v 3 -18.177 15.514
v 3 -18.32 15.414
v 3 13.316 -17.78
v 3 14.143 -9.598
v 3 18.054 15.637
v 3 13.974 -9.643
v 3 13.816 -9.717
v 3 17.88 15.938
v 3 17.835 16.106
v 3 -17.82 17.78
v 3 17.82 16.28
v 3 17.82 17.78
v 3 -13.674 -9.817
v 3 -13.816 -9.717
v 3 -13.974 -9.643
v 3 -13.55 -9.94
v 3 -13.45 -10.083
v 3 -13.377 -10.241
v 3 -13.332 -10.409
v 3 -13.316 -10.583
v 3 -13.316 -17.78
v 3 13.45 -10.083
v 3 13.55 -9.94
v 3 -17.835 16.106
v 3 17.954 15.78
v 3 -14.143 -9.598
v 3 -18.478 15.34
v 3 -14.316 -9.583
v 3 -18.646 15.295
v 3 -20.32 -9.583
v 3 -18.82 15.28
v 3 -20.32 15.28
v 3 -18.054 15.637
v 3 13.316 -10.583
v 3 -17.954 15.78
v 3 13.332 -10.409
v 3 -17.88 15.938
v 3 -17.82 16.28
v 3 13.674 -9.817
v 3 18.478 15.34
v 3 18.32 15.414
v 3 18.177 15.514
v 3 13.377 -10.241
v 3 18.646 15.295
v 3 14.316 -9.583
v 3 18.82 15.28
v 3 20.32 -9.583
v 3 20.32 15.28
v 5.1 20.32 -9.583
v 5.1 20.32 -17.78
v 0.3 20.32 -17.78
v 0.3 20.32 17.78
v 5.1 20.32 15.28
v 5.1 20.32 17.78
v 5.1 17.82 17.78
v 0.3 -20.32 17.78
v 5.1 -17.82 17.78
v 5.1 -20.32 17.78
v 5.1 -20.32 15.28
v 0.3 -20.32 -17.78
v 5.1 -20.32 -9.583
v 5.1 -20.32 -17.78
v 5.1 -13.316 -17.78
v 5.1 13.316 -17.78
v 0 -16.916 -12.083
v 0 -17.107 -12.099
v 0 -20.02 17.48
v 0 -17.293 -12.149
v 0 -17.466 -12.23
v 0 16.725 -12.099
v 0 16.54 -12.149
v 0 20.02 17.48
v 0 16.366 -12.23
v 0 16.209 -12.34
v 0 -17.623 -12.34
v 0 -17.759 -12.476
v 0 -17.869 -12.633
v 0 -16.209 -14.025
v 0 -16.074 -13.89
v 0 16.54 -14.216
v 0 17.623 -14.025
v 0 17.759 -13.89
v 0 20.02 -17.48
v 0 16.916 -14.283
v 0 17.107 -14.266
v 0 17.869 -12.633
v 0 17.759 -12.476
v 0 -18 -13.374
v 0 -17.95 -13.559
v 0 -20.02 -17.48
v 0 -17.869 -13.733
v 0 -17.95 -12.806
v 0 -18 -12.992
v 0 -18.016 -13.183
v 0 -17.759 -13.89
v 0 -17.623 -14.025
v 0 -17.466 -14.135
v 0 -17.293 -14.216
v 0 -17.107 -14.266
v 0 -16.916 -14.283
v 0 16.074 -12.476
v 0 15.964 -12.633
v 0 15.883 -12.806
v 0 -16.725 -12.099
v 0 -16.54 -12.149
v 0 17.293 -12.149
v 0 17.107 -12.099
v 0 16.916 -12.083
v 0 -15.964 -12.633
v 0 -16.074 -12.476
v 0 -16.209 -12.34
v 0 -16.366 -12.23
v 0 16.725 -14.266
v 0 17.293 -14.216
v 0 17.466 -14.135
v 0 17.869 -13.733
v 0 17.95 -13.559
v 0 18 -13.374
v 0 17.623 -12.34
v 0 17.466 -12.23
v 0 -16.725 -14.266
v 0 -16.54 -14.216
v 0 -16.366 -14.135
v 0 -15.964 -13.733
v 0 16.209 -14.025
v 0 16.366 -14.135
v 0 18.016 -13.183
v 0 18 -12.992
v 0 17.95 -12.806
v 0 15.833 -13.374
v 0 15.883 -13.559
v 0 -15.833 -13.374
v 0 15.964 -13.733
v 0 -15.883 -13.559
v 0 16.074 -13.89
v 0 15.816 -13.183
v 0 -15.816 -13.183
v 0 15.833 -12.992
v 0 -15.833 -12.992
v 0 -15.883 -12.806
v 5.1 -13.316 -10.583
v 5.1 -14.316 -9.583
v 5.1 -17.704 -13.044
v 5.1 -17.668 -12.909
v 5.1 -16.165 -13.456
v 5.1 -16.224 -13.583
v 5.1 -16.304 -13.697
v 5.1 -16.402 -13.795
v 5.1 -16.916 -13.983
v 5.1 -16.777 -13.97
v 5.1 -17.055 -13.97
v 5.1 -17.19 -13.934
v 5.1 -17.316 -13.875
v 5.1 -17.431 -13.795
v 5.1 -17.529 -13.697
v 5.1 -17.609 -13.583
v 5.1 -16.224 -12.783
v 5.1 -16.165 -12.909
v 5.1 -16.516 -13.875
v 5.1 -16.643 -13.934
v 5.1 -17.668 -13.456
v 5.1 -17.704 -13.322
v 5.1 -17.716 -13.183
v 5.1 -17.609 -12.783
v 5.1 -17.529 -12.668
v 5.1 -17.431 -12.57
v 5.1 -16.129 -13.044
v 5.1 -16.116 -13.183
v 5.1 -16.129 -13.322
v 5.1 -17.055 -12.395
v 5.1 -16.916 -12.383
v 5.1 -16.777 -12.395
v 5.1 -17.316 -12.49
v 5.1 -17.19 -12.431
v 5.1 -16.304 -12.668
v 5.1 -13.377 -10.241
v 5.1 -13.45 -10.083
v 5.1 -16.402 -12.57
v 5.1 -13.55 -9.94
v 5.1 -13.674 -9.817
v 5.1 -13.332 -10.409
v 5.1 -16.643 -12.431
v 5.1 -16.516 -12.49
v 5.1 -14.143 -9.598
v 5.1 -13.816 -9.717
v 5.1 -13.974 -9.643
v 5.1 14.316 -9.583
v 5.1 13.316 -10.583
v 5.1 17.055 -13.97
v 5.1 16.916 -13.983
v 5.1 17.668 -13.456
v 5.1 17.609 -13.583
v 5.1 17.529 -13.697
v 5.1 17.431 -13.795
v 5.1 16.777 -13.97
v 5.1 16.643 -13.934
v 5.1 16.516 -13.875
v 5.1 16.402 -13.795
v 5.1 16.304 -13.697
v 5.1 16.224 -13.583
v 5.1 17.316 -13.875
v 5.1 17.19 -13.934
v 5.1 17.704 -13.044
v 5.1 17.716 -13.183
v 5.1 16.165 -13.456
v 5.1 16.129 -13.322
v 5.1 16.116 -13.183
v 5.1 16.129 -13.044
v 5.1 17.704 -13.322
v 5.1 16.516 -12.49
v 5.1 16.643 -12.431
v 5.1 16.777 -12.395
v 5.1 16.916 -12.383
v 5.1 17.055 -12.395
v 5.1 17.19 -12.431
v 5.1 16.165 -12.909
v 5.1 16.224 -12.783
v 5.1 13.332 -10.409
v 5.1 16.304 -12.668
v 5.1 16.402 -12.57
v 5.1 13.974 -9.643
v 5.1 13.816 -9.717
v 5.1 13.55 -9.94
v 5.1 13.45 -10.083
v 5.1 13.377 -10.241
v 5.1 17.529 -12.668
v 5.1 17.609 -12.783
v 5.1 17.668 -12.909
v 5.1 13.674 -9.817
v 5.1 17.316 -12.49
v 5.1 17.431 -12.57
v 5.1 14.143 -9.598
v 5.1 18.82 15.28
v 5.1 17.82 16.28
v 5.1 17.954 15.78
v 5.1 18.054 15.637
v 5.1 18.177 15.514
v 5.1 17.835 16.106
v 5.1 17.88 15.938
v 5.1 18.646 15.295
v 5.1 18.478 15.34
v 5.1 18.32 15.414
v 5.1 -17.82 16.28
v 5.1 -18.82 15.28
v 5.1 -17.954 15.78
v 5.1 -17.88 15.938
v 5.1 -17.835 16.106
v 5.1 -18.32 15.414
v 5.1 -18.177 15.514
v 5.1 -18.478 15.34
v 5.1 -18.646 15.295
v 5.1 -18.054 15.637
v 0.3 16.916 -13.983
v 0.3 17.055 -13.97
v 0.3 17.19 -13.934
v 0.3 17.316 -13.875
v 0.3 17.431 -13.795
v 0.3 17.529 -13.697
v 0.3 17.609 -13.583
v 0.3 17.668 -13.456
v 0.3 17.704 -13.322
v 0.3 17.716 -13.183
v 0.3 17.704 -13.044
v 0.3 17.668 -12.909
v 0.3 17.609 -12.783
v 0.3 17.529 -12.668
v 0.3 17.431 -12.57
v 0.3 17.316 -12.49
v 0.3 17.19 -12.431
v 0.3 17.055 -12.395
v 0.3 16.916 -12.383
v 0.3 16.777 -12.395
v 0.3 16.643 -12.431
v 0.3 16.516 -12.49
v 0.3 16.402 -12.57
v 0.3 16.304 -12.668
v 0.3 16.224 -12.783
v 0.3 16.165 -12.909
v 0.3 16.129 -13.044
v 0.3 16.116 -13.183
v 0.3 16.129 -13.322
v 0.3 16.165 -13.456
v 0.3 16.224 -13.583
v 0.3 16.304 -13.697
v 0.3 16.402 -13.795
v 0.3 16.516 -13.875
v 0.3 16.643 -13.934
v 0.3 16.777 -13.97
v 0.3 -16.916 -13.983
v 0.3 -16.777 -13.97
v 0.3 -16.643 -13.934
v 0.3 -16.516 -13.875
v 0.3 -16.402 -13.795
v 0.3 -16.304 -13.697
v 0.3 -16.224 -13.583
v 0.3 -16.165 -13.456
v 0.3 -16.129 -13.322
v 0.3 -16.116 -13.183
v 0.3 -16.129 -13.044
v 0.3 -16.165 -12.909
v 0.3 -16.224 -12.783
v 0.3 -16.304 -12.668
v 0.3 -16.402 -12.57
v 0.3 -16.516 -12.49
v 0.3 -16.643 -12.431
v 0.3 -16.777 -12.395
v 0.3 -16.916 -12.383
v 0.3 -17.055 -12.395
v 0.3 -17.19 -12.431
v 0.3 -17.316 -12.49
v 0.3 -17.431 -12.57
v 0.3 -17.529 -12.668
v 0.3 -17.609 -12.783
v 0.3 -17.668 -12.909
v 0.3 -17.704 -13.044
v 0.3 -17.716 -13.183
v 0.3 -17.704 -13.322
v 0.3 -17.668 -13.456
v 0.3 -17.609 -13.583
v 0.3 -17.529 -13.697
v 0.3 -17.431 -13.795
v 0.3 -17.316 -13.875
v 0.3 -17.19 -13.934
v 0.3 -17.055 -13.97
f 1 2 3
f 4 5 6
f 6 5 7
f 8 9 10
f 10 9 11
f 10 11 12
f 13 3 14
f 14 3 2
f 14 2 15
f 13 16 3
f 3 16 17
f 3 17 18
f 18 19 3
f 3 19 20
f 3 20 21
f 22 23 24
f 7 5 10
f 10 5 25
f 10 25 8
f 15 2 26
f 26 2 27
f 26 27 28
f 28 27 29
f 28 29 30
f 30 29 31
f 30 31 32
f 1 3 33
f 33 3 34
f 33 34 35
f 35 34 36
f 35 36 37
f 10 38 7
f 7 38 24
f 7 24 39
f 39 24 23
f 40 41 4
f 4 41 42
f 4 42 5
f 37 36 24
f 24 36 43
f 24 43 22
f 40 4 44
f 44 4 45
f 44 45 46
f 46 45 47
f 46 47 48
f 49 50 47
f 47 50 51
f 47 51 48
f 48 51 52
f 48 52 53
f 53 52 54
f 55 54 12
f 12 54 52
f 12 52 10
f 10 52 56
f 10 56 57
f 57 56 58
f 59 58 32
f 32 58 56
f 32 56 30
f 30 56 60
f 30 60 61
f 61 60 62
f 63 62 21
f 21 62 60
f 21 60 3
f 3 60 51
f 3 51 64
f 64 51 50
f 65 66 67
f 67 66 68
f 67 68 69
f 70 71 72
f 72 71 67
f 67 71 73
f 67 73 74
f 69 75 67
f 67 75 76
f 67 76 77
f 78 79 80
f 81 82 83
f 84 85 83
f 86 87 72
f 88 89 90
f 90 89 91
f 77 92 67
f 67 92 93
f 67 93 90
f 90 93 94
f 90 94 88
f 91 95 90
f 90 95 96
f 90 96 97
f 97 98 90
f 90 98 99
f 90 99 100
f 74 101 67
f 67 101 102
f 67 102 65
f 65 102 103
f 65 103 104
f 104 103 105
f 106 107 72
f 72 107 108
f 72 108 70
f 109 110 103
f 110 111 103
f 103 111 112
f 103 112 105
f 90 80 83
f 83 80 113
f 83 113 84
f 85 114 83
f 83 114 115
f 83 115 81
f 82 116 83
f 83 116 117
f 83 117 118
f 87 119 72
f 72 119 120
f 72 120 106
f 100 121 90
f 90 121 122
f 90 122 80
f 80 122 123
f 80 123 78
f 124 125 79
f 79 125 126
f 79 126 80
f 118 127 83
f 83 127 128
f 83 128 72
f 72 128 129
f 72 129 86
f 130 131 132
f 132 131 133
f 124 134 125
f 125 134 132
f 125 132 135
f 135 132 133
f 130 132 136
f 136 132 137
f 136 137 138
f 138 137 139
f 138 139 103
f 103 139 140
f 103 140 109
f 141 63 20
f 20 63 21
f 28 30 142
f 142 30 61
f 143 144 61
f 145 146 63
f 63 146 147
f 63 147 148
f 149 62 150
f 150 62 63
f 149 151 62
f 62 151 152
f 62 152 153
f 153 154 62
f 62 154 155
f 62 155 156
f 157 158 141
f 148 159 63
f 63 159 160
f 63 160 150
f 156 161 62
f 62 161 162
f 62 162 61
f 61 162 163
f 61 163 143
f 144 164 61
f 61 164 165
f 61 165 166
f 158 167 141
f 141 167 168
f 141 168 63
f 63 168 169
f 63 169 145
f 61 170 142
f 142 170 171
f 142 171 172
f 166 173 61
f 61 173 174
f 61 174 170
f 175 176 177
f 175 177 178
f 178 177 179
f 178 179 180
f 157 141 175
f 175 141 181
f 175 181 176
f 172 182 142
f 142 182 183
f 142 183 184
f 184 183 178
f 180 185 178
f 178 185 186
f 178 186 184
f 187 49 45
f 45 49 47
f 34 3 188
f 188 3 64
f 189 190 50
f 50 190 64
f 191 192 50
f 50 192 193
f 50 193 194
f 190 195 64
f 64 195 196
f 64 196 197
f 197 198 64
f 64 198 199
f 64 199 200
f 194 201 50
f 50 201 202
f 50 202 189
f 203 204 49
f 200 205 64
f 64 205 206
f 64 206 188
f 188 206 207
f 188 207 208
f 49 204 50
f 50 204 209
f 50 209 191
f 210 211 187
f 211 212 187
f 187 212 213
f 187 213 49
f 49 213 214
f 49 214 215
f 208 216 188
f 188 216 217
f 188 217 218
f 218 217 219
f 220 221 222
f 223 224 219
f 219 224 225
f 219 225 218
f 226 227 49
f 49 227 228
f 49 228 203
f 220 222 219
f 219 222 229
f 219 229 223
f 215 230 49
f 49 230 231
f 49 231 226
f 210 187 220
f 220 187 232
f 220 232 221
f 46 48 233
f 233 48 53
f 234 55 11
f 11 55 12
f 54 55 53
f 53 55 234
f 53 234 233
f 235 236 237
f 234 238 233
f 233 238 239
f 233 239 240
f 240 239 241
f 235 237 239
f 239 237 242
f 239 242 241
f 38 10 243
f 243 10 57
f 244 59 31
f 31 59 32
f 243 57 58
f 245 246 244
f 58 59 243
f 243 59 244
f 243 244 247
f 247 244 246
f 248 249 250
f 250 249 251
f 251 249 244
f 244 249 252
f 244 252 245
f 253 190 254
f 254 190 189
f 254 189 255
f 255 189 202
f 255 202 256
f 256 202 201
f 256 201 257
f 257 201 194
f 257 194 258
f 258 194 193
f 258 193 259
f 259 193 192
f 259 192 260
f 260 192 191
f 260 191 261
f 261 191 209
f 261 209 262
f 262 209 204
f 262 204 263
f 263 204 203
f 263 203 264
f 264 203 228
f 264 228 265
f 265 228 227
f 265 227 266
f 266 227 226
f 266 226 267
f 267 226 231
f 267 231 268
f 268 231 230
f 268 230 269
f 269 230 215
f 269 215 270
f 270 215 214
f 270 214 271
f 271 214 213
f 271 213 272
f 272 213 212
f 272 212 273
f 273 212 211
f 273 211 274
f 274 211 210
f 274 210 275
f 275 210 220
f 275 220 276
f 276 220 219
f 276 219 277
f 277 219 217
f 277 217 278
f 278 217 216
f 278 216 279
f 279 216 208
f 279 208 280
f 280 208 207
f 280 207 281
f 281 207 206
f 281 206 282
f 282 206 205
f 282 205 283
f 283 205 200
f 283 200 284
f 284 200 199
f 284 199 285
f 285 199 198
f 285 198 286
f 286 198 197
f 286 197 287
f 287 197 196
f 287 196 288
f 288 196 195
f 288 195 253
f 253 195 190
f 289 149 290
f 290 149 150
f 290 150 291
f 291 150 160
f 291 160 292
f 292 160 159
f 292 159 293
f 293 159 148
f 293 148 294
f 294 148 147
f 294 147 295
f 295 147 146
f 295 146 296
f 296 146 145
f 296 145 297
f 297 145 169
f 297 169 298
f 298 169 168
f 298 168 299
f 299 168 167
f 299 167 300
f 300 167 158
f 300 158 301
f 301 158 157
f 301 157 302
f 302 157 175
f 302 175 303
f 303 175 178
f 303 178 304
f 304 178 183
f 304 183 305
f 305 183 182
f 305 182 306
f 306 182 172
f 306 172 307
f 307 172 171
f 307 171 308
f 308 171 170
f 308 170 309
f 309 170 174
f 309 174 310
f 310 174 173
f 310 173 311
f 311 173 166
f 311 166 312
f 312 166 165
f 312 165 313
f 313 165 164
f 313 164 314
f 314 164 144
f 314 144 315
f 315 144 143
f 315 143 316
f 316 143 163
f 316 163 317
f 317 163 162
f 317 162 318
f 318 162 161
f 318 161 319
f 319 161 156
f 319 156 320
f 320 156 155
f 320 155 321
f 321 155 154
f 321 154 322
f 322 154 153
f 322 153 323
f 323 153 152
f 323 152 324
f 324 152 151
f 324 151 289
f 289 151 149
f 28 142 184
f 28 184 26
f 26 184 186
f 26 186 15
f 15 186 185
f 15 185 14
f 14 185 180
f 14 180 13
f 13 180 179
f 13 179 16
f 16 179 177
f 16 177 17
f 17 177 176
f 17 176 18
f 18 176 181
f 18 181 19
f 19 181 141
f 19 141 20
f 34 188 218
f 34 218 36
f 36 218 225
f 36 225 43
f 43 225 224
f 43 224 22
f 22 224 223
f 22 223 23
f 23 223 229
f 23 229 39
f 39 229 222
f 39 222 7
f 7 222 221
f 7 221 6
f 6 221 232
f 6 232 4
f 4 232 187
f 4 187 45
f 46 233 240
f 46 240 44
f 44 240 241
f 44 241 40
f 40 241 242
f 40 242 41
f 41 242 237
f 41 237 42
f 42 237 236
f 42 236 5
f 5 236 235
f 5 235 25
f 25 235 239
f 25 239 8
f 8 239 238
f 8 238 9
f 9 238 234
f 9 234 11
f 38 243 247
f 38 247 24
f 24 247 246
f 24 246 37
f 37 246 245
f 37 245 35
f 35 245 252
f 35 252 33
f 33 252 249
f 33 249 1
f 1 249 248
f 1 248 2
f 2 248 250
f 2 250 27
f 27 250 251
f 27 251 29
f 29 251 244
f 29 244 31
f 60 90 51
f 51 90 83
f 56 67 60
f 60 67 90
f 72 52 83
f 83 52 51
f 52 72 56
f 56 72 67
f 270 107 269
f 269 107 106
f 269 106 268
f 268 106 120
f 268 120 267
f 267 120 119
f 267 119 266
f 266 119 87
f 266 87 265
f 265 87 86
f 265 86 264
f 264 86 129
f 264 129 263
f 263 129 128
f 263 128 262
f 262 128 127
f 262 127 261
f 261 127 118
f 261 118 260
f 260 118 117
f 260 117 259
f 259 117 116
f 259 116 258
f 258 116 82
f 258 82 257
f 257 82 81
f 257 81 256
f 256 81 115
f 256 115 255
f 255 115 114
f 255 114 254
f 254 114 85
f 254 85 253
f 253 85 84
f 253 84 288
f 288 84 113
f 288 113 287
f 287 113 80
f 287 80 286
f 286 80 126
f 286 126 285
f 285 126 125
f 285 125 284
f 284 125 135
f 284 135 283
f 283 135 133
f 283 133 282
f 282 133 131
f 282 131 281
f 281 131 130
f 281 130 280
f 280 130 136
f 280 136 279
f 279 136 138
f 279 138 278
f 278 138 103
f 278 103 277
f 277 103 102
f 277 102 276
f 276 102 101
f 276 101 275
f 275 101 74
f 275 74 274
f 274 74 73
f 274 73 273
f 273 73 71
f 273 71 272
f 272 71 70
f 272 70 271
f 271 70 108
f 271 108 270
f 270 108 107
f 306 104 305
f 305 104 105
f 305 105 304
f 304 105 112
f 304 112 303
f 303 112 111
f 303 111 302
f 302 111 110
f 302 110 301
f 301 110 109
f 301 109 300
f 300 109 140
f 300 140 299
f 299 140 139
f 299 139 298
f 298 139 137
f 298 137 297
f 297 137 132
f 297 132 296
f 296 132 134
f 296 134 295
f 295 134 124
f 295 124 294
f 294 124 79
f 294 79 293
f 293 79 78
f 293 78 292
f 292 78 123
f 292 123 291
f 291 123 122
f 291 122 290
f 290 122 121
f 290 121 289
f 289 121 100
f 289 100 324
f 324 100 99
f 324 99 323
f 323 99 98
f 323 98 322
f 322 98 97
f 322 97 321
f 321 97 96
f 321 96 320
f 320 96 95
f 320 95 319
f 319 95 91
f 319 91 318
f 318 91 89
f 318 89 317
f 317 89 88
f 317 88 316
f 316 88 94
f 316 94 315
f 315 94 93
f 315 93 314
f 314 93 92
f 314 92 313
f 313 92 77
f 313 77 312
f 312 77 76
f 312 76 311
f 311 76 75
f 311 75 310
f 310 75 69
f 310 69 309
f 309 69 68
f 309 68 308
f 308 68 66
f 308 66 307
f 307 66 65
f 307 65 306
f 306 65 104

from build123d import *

# Parameters (mm, degrees)
SKETCH1_W           = 40.64
SKETCH1_H           = 35.56
BOSS_EXTRUDE1_DEPTH = 3
SKETCH3_W           = 7.0036
SKETCH3_H           = 8.1974
SKETCH3_W_2         = 2.5
SKETCH3_H_2         = 2.5
BOSS_EXTRUDE2_DEPTH = 2.1
SKETCH4_R           = 0.8
CUT_EXTRUDE2_DEPTH  = 28.47800575
FILLET1_R           = 1
CHAMFER1_SIZE       = 0.3


with BuildPart() as part:
    # Sketch1 → Boss-Extrude1 (new body)
    with BuildSketch(Plane.YZ):
        Rectangle(SKETCH1_W, SKETCH1_H)
    extrude(amount=BOSS_EXTRUDE1_DEPTH)

    # Sketch3 → Boss-Extrude2 (add)
    with BuildSketch(Plane.YZ.offset(3)):
        with Locations((-16.8182, -13.6813)):
            Rectangle(SKETCH3_W, SKETCH3_H)
        with Locations((16.8182, -13.6813)):
            Rectangle(SKETCH3_W, SKETCH3_H)
        with Locations((19.07, 16.53)):
            Rectangle(SKETCH3_W_2, SKETCH3_H_2)
        with Locations((-19.07, 16.53)):
            Rectangle(SKETCH3_W_2, SKETCH3_H_2)
    extrude(amount=BOSS_EXTRUDE2_DEPTH)

    # Sketch4 → Cut-Extrude2 (cut, through all)
    with BuildSketch(Plane.YZ.offset(5.1)):
        with Locations(Location((-16.9164, -13.1826, 0), (0, 0, 270))):
            Circle(SKETCH4_R)
        with Locations(Location((16.9164, -13.1826, 0), (0, 0, 270))):
            Circle(SKETCH4_R)
    extrude(amount=-CUT_EXTRUDE2_DEPTH, mode=Mode.SUBTRACT)

    # Fillet1
    fillet1_edges = [part.edges().sort_by_distance(p)[0] for p in [
        (4.05, -17.82, 15.28),
        (4.05, 17.82, 15.28),
        (4.05, 13.3164, -9.5826),
        (4.05, -13.3164, -9.5826),
    ]]
    fillet(fillet1_edges, radius=FILLET1_R)

    # Chamfer1
    chamfer1_edges = [part.edges().sort_by_distance(p)[0] for p in [
        (0, 0, -17.78),
        (0, -20.32, 0),
        (0, 0, 17.78),
        (0, -16.9164, -12.3826),
        (0, 20.32, 0),
        (0, 16.9164, -12.3826),
    ]]
    chamfer(chamfer1_edges, length=CHAMFER1_SIZE)


solid = part.part
